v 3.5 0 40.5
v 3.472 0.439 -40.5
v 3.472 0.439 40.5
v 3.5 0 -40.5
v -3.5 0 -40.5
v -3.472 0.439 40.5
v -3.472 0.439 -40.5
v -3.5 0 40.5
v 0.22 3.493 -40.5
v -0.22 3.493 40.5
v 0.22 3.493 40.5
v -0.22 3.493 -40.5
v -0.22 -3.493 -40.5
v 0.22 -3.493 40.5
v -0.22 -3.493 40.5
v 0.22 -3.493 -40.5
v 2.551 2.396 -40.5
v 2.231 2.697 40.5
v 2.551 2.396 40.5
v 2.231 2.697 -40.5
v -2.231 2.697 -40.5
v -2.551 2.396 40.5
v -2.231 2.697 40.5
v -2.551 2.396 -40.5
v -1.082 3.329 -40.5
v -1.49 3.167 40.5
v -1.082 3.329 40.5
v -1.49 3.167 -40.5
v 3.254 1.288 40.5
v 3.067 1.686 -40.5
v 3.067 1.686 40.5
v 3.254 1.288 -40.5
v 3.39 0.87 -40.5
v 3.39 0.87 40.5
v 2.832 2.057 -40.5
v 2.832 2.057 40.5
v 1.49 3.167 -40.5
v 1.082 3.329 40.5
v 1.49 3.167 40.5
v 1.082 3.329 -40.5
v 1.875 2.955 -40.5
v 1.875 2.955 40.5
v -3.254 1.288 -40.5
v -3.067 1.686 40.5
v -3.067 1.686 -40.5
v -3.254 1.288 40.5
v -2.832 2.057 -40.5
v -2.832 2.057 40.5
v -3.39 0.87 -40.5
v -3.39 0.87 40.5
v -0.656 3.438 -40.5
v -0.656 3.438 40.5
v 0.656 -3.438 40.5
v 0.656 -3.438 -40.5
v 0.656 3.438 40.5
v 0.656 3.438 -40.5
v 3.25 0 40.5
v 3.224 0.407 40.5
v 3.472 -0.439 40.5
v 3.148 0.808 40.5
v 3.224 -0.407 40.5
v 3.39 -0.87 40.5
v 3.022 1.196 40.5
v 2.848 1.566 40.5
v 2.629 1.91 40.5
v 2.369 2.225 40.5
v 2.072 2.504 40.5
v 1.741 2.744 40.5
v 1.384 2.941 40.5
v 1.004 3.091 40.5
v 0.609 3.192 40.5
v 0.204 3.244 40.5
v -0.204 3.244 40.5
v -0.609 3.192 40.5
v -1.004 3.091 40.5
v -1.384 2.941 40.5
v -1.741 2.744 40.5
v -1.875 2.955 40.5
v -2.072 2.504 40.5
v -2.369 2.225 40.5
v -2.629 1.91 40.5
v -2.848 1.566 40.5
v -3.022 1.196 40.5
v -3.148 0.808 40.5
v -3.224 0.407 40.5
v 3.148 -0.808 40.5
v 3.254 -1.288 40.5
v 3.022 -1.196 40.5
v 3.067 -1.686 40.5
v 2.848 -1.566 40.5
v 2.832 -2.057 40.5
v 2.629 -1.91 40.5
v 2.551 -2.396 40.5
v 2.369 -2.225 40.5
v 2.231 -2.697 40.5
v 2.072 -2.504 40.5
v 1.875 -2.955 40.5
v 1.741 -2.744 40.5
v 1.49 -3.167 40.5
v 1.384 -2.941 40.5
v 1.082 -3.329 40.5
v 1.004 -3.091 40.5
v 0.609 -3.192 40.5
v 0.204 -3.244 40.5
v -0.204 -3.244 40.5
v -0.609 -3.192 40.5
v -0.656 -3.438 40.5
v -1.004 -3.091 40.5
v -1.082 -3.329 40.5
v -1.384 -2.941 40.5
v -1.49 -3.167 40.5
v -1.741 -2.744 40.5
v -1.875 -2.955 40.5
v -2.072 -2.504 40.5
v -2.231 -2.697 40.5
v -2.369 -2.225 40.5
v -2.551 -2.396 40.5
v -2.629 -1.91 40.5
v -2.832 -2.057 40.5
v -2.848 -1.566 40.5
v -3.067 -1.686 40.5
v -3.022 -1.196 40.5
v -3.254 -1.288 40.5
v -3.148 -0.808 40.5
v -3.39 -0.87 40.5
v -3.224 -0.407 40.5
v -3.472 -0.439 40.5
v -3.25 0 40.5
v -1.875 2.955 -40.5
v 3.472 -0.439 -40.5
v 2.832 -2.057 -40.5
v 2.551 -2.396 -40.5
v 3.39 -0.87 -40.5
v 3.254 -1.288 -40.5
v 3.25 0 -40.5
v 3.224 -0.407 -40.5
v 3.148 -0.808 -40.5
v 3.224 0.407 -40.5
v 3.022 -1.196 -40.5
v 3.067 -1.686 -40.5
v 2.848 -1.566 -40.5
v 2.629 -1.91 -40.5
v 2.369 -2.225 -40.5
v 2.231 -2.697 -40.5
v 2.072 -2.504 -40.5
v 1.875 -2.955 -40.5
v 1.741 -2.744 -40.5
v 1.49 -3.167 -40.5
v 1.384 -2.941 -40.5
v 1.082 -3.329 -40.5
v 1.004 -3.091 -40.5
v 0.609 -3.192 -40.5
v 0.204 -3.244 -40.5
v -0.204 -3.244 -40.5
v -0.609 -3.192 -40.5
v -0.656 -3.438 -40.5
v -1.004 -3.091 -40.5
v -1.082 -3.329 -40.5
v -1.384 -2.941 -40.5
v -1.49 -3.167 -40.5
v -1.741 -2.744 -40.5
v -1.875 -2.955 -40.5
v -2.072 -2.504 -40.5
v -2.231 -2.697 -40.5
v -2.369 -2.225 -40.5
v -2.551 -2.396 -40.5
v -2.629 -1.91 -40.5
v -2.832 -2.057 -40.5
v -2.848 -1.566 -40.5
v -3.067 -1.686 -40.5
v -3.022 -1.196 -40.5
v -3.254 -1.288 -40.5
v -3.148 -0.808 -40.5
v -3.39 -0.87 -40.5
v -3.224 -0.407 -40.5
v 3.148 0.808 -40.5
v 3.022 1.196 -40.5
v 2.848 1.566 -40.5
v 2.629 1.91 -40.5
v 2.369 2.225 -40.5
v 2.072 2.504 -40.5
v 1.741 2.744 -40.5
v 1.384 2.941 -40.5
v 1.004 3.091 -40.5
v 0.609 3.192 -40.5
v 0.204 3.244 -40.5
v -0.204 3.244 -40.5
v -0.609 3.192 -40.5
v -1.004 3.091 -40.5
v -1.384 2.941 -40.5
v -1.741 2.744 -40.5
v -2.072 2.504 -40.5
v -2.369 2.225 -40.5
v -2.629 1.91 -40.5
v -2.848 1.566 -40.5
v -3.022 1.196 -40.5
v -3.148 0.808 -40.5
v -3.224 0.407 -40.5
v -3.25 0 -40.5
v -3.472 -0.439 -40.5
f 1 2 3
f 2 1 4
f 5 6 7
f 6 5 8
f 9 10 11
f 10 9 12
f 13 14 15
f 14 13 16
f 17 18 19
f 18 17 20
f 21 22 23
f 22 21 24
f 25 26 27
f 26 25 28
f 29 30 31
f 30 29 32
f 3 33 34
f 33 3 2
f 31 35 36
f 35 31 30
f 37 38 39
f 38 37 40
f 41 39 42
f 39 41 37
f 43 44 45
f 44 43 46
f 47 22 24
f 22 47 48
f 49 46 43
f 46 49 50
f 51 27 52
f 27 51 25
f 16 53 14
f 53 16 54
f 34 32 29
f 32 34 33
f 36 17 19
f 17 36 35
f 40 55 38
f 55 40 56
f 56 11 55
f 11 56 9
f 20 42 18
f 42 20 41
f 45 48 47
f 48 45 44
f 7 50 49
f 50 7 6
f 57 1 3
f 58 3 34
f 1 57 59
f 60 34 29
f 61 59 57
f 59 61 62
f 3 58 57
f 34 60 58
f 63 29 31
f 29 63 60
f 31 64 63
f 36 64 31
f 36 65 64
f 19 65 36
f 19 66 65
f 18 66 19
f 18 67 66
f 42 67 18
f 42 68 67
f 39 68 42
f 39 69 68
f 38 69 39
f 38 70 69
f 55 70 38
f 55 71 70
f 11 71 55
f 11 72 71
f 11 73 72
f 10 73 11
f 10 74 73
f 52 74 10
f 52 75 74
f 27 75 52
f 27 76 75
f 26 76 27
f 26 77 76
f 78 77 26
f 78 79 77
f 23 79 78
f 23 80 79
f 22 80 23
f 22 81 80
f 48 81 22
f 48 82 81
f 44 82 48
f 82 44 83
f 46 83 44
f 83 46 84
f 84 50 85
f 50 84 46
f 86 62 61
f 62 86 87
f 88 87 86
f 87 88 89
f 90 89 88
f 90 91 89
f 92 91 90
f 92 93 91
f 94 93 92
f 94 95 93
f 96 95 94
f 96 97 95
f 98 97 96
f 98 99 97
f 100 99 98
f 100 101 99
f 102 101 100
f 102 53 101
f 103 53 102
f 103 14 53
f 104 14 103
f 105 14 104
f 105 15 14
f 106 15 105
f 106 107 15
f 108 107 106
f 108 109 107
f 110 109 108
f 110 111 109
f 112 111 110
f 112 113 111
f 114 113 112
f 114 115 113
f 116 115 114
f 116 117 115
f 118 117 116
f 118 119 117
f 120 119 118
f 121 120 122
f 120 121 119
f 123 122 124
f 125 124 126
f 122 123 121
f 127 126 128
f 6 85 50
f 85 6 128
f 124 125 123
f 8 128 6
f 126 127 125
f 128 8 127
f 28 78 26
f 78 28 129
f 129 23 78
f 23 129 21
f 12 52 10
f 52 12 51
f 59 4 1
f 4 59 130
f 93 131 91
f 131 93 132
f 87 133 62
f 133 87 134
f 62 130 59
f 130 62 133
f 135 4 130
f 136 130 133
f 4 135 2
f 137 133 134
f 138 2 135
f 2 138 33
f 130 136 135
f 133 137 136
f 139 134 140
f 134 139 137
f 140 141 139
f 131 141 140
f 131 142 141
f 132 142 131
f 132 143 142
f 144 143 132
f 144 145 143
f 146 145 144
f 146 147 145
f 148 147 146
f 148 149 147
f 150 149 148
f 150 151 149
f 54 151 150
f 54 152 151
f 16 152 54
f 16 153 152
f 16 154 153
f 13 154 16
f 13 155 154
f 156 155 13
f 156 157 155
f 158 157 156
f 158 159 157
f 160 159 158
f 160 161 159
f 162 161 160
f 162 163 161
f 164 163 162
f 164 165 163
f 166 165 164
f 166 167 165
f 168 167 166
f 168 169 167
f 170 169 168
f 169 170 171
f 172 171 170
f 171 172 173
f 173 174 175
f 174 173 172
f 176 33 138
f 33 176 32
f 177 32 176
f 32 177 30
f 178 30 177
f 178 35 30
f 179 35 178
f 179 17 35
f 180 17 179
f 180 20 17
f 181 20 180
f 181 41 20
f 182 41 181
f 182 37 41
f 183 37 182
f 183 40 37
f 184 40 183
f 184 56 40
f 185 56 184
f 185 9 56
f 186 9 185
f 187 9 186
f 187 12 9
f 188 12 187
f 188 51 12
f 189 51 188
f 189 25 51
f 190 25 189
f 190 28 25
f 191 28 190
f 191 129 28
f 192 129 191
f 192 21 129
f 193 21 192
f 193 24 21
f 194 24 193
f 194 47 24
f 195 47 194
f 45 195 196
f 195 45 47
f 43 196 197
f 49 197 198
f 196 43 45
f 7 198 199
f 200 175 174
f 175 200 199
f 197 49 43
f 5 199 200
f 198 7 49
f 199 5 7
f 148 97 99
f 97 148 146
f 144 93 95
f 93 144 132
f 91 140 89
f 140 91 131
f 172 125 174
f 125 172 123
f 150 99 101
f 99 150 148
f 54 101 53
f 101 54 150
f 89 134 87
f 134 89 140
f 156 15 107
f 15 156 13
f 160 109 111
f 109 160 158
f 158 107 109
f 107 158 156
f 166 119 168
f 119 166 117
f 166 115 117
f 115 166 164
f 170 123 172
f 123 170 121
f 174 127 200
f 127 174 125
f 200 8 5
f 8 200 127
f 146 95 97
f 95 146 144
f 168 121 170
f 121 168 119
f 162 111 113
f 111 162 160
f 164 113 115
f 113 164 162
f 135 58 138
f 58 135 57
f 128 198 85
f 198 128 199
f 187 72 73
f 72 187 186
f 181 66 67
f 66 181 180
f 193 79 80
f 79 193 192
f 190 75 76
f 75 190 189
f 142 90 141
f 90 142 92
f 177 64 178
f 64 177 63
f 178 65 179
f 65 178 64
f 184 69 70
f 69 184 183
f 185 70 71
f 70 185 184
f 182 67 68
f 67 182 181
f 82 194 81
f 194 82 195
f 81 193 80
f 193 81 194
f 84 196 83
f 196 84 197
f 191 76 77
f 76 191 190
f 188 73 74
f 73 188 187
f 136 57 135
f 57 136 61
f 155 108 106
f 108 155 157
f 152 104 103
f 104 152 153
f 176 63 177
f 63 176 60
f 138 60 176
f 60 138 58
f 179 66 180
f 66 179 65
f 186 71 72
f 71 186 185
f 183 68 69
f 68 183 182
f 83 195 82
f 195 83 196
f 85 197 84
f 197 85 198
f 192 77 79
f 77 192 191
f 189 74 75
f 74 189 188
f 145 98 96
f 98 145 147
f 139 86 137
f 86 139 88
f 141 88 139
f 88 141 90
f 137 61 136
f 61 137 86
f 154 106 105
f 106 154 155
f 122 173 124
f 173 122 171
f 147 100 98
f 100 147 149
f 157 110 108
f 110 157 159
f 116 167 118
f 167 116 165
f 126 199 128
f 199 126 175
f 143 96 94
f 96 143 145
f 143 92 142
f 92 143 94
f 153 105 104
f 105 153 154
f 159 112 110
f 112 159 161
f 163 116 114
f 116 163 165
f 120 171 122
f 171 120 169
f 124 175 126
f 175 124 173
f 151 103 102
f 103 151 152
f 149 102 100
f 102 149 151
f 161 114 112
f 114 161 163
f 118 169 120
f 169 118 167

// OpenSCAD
$fn = 50;


difference() {
	union() {
		translate(v = [0, 0, -40.5000000000]) {
			cylinder(h = 81, r = 3.5000000000);
		}
	}
	union() {
		translate(v = [0, 0, -100.0000000000]) {
			cylinder(h = 200, r = 3.2500000000);
		}
	}
}
